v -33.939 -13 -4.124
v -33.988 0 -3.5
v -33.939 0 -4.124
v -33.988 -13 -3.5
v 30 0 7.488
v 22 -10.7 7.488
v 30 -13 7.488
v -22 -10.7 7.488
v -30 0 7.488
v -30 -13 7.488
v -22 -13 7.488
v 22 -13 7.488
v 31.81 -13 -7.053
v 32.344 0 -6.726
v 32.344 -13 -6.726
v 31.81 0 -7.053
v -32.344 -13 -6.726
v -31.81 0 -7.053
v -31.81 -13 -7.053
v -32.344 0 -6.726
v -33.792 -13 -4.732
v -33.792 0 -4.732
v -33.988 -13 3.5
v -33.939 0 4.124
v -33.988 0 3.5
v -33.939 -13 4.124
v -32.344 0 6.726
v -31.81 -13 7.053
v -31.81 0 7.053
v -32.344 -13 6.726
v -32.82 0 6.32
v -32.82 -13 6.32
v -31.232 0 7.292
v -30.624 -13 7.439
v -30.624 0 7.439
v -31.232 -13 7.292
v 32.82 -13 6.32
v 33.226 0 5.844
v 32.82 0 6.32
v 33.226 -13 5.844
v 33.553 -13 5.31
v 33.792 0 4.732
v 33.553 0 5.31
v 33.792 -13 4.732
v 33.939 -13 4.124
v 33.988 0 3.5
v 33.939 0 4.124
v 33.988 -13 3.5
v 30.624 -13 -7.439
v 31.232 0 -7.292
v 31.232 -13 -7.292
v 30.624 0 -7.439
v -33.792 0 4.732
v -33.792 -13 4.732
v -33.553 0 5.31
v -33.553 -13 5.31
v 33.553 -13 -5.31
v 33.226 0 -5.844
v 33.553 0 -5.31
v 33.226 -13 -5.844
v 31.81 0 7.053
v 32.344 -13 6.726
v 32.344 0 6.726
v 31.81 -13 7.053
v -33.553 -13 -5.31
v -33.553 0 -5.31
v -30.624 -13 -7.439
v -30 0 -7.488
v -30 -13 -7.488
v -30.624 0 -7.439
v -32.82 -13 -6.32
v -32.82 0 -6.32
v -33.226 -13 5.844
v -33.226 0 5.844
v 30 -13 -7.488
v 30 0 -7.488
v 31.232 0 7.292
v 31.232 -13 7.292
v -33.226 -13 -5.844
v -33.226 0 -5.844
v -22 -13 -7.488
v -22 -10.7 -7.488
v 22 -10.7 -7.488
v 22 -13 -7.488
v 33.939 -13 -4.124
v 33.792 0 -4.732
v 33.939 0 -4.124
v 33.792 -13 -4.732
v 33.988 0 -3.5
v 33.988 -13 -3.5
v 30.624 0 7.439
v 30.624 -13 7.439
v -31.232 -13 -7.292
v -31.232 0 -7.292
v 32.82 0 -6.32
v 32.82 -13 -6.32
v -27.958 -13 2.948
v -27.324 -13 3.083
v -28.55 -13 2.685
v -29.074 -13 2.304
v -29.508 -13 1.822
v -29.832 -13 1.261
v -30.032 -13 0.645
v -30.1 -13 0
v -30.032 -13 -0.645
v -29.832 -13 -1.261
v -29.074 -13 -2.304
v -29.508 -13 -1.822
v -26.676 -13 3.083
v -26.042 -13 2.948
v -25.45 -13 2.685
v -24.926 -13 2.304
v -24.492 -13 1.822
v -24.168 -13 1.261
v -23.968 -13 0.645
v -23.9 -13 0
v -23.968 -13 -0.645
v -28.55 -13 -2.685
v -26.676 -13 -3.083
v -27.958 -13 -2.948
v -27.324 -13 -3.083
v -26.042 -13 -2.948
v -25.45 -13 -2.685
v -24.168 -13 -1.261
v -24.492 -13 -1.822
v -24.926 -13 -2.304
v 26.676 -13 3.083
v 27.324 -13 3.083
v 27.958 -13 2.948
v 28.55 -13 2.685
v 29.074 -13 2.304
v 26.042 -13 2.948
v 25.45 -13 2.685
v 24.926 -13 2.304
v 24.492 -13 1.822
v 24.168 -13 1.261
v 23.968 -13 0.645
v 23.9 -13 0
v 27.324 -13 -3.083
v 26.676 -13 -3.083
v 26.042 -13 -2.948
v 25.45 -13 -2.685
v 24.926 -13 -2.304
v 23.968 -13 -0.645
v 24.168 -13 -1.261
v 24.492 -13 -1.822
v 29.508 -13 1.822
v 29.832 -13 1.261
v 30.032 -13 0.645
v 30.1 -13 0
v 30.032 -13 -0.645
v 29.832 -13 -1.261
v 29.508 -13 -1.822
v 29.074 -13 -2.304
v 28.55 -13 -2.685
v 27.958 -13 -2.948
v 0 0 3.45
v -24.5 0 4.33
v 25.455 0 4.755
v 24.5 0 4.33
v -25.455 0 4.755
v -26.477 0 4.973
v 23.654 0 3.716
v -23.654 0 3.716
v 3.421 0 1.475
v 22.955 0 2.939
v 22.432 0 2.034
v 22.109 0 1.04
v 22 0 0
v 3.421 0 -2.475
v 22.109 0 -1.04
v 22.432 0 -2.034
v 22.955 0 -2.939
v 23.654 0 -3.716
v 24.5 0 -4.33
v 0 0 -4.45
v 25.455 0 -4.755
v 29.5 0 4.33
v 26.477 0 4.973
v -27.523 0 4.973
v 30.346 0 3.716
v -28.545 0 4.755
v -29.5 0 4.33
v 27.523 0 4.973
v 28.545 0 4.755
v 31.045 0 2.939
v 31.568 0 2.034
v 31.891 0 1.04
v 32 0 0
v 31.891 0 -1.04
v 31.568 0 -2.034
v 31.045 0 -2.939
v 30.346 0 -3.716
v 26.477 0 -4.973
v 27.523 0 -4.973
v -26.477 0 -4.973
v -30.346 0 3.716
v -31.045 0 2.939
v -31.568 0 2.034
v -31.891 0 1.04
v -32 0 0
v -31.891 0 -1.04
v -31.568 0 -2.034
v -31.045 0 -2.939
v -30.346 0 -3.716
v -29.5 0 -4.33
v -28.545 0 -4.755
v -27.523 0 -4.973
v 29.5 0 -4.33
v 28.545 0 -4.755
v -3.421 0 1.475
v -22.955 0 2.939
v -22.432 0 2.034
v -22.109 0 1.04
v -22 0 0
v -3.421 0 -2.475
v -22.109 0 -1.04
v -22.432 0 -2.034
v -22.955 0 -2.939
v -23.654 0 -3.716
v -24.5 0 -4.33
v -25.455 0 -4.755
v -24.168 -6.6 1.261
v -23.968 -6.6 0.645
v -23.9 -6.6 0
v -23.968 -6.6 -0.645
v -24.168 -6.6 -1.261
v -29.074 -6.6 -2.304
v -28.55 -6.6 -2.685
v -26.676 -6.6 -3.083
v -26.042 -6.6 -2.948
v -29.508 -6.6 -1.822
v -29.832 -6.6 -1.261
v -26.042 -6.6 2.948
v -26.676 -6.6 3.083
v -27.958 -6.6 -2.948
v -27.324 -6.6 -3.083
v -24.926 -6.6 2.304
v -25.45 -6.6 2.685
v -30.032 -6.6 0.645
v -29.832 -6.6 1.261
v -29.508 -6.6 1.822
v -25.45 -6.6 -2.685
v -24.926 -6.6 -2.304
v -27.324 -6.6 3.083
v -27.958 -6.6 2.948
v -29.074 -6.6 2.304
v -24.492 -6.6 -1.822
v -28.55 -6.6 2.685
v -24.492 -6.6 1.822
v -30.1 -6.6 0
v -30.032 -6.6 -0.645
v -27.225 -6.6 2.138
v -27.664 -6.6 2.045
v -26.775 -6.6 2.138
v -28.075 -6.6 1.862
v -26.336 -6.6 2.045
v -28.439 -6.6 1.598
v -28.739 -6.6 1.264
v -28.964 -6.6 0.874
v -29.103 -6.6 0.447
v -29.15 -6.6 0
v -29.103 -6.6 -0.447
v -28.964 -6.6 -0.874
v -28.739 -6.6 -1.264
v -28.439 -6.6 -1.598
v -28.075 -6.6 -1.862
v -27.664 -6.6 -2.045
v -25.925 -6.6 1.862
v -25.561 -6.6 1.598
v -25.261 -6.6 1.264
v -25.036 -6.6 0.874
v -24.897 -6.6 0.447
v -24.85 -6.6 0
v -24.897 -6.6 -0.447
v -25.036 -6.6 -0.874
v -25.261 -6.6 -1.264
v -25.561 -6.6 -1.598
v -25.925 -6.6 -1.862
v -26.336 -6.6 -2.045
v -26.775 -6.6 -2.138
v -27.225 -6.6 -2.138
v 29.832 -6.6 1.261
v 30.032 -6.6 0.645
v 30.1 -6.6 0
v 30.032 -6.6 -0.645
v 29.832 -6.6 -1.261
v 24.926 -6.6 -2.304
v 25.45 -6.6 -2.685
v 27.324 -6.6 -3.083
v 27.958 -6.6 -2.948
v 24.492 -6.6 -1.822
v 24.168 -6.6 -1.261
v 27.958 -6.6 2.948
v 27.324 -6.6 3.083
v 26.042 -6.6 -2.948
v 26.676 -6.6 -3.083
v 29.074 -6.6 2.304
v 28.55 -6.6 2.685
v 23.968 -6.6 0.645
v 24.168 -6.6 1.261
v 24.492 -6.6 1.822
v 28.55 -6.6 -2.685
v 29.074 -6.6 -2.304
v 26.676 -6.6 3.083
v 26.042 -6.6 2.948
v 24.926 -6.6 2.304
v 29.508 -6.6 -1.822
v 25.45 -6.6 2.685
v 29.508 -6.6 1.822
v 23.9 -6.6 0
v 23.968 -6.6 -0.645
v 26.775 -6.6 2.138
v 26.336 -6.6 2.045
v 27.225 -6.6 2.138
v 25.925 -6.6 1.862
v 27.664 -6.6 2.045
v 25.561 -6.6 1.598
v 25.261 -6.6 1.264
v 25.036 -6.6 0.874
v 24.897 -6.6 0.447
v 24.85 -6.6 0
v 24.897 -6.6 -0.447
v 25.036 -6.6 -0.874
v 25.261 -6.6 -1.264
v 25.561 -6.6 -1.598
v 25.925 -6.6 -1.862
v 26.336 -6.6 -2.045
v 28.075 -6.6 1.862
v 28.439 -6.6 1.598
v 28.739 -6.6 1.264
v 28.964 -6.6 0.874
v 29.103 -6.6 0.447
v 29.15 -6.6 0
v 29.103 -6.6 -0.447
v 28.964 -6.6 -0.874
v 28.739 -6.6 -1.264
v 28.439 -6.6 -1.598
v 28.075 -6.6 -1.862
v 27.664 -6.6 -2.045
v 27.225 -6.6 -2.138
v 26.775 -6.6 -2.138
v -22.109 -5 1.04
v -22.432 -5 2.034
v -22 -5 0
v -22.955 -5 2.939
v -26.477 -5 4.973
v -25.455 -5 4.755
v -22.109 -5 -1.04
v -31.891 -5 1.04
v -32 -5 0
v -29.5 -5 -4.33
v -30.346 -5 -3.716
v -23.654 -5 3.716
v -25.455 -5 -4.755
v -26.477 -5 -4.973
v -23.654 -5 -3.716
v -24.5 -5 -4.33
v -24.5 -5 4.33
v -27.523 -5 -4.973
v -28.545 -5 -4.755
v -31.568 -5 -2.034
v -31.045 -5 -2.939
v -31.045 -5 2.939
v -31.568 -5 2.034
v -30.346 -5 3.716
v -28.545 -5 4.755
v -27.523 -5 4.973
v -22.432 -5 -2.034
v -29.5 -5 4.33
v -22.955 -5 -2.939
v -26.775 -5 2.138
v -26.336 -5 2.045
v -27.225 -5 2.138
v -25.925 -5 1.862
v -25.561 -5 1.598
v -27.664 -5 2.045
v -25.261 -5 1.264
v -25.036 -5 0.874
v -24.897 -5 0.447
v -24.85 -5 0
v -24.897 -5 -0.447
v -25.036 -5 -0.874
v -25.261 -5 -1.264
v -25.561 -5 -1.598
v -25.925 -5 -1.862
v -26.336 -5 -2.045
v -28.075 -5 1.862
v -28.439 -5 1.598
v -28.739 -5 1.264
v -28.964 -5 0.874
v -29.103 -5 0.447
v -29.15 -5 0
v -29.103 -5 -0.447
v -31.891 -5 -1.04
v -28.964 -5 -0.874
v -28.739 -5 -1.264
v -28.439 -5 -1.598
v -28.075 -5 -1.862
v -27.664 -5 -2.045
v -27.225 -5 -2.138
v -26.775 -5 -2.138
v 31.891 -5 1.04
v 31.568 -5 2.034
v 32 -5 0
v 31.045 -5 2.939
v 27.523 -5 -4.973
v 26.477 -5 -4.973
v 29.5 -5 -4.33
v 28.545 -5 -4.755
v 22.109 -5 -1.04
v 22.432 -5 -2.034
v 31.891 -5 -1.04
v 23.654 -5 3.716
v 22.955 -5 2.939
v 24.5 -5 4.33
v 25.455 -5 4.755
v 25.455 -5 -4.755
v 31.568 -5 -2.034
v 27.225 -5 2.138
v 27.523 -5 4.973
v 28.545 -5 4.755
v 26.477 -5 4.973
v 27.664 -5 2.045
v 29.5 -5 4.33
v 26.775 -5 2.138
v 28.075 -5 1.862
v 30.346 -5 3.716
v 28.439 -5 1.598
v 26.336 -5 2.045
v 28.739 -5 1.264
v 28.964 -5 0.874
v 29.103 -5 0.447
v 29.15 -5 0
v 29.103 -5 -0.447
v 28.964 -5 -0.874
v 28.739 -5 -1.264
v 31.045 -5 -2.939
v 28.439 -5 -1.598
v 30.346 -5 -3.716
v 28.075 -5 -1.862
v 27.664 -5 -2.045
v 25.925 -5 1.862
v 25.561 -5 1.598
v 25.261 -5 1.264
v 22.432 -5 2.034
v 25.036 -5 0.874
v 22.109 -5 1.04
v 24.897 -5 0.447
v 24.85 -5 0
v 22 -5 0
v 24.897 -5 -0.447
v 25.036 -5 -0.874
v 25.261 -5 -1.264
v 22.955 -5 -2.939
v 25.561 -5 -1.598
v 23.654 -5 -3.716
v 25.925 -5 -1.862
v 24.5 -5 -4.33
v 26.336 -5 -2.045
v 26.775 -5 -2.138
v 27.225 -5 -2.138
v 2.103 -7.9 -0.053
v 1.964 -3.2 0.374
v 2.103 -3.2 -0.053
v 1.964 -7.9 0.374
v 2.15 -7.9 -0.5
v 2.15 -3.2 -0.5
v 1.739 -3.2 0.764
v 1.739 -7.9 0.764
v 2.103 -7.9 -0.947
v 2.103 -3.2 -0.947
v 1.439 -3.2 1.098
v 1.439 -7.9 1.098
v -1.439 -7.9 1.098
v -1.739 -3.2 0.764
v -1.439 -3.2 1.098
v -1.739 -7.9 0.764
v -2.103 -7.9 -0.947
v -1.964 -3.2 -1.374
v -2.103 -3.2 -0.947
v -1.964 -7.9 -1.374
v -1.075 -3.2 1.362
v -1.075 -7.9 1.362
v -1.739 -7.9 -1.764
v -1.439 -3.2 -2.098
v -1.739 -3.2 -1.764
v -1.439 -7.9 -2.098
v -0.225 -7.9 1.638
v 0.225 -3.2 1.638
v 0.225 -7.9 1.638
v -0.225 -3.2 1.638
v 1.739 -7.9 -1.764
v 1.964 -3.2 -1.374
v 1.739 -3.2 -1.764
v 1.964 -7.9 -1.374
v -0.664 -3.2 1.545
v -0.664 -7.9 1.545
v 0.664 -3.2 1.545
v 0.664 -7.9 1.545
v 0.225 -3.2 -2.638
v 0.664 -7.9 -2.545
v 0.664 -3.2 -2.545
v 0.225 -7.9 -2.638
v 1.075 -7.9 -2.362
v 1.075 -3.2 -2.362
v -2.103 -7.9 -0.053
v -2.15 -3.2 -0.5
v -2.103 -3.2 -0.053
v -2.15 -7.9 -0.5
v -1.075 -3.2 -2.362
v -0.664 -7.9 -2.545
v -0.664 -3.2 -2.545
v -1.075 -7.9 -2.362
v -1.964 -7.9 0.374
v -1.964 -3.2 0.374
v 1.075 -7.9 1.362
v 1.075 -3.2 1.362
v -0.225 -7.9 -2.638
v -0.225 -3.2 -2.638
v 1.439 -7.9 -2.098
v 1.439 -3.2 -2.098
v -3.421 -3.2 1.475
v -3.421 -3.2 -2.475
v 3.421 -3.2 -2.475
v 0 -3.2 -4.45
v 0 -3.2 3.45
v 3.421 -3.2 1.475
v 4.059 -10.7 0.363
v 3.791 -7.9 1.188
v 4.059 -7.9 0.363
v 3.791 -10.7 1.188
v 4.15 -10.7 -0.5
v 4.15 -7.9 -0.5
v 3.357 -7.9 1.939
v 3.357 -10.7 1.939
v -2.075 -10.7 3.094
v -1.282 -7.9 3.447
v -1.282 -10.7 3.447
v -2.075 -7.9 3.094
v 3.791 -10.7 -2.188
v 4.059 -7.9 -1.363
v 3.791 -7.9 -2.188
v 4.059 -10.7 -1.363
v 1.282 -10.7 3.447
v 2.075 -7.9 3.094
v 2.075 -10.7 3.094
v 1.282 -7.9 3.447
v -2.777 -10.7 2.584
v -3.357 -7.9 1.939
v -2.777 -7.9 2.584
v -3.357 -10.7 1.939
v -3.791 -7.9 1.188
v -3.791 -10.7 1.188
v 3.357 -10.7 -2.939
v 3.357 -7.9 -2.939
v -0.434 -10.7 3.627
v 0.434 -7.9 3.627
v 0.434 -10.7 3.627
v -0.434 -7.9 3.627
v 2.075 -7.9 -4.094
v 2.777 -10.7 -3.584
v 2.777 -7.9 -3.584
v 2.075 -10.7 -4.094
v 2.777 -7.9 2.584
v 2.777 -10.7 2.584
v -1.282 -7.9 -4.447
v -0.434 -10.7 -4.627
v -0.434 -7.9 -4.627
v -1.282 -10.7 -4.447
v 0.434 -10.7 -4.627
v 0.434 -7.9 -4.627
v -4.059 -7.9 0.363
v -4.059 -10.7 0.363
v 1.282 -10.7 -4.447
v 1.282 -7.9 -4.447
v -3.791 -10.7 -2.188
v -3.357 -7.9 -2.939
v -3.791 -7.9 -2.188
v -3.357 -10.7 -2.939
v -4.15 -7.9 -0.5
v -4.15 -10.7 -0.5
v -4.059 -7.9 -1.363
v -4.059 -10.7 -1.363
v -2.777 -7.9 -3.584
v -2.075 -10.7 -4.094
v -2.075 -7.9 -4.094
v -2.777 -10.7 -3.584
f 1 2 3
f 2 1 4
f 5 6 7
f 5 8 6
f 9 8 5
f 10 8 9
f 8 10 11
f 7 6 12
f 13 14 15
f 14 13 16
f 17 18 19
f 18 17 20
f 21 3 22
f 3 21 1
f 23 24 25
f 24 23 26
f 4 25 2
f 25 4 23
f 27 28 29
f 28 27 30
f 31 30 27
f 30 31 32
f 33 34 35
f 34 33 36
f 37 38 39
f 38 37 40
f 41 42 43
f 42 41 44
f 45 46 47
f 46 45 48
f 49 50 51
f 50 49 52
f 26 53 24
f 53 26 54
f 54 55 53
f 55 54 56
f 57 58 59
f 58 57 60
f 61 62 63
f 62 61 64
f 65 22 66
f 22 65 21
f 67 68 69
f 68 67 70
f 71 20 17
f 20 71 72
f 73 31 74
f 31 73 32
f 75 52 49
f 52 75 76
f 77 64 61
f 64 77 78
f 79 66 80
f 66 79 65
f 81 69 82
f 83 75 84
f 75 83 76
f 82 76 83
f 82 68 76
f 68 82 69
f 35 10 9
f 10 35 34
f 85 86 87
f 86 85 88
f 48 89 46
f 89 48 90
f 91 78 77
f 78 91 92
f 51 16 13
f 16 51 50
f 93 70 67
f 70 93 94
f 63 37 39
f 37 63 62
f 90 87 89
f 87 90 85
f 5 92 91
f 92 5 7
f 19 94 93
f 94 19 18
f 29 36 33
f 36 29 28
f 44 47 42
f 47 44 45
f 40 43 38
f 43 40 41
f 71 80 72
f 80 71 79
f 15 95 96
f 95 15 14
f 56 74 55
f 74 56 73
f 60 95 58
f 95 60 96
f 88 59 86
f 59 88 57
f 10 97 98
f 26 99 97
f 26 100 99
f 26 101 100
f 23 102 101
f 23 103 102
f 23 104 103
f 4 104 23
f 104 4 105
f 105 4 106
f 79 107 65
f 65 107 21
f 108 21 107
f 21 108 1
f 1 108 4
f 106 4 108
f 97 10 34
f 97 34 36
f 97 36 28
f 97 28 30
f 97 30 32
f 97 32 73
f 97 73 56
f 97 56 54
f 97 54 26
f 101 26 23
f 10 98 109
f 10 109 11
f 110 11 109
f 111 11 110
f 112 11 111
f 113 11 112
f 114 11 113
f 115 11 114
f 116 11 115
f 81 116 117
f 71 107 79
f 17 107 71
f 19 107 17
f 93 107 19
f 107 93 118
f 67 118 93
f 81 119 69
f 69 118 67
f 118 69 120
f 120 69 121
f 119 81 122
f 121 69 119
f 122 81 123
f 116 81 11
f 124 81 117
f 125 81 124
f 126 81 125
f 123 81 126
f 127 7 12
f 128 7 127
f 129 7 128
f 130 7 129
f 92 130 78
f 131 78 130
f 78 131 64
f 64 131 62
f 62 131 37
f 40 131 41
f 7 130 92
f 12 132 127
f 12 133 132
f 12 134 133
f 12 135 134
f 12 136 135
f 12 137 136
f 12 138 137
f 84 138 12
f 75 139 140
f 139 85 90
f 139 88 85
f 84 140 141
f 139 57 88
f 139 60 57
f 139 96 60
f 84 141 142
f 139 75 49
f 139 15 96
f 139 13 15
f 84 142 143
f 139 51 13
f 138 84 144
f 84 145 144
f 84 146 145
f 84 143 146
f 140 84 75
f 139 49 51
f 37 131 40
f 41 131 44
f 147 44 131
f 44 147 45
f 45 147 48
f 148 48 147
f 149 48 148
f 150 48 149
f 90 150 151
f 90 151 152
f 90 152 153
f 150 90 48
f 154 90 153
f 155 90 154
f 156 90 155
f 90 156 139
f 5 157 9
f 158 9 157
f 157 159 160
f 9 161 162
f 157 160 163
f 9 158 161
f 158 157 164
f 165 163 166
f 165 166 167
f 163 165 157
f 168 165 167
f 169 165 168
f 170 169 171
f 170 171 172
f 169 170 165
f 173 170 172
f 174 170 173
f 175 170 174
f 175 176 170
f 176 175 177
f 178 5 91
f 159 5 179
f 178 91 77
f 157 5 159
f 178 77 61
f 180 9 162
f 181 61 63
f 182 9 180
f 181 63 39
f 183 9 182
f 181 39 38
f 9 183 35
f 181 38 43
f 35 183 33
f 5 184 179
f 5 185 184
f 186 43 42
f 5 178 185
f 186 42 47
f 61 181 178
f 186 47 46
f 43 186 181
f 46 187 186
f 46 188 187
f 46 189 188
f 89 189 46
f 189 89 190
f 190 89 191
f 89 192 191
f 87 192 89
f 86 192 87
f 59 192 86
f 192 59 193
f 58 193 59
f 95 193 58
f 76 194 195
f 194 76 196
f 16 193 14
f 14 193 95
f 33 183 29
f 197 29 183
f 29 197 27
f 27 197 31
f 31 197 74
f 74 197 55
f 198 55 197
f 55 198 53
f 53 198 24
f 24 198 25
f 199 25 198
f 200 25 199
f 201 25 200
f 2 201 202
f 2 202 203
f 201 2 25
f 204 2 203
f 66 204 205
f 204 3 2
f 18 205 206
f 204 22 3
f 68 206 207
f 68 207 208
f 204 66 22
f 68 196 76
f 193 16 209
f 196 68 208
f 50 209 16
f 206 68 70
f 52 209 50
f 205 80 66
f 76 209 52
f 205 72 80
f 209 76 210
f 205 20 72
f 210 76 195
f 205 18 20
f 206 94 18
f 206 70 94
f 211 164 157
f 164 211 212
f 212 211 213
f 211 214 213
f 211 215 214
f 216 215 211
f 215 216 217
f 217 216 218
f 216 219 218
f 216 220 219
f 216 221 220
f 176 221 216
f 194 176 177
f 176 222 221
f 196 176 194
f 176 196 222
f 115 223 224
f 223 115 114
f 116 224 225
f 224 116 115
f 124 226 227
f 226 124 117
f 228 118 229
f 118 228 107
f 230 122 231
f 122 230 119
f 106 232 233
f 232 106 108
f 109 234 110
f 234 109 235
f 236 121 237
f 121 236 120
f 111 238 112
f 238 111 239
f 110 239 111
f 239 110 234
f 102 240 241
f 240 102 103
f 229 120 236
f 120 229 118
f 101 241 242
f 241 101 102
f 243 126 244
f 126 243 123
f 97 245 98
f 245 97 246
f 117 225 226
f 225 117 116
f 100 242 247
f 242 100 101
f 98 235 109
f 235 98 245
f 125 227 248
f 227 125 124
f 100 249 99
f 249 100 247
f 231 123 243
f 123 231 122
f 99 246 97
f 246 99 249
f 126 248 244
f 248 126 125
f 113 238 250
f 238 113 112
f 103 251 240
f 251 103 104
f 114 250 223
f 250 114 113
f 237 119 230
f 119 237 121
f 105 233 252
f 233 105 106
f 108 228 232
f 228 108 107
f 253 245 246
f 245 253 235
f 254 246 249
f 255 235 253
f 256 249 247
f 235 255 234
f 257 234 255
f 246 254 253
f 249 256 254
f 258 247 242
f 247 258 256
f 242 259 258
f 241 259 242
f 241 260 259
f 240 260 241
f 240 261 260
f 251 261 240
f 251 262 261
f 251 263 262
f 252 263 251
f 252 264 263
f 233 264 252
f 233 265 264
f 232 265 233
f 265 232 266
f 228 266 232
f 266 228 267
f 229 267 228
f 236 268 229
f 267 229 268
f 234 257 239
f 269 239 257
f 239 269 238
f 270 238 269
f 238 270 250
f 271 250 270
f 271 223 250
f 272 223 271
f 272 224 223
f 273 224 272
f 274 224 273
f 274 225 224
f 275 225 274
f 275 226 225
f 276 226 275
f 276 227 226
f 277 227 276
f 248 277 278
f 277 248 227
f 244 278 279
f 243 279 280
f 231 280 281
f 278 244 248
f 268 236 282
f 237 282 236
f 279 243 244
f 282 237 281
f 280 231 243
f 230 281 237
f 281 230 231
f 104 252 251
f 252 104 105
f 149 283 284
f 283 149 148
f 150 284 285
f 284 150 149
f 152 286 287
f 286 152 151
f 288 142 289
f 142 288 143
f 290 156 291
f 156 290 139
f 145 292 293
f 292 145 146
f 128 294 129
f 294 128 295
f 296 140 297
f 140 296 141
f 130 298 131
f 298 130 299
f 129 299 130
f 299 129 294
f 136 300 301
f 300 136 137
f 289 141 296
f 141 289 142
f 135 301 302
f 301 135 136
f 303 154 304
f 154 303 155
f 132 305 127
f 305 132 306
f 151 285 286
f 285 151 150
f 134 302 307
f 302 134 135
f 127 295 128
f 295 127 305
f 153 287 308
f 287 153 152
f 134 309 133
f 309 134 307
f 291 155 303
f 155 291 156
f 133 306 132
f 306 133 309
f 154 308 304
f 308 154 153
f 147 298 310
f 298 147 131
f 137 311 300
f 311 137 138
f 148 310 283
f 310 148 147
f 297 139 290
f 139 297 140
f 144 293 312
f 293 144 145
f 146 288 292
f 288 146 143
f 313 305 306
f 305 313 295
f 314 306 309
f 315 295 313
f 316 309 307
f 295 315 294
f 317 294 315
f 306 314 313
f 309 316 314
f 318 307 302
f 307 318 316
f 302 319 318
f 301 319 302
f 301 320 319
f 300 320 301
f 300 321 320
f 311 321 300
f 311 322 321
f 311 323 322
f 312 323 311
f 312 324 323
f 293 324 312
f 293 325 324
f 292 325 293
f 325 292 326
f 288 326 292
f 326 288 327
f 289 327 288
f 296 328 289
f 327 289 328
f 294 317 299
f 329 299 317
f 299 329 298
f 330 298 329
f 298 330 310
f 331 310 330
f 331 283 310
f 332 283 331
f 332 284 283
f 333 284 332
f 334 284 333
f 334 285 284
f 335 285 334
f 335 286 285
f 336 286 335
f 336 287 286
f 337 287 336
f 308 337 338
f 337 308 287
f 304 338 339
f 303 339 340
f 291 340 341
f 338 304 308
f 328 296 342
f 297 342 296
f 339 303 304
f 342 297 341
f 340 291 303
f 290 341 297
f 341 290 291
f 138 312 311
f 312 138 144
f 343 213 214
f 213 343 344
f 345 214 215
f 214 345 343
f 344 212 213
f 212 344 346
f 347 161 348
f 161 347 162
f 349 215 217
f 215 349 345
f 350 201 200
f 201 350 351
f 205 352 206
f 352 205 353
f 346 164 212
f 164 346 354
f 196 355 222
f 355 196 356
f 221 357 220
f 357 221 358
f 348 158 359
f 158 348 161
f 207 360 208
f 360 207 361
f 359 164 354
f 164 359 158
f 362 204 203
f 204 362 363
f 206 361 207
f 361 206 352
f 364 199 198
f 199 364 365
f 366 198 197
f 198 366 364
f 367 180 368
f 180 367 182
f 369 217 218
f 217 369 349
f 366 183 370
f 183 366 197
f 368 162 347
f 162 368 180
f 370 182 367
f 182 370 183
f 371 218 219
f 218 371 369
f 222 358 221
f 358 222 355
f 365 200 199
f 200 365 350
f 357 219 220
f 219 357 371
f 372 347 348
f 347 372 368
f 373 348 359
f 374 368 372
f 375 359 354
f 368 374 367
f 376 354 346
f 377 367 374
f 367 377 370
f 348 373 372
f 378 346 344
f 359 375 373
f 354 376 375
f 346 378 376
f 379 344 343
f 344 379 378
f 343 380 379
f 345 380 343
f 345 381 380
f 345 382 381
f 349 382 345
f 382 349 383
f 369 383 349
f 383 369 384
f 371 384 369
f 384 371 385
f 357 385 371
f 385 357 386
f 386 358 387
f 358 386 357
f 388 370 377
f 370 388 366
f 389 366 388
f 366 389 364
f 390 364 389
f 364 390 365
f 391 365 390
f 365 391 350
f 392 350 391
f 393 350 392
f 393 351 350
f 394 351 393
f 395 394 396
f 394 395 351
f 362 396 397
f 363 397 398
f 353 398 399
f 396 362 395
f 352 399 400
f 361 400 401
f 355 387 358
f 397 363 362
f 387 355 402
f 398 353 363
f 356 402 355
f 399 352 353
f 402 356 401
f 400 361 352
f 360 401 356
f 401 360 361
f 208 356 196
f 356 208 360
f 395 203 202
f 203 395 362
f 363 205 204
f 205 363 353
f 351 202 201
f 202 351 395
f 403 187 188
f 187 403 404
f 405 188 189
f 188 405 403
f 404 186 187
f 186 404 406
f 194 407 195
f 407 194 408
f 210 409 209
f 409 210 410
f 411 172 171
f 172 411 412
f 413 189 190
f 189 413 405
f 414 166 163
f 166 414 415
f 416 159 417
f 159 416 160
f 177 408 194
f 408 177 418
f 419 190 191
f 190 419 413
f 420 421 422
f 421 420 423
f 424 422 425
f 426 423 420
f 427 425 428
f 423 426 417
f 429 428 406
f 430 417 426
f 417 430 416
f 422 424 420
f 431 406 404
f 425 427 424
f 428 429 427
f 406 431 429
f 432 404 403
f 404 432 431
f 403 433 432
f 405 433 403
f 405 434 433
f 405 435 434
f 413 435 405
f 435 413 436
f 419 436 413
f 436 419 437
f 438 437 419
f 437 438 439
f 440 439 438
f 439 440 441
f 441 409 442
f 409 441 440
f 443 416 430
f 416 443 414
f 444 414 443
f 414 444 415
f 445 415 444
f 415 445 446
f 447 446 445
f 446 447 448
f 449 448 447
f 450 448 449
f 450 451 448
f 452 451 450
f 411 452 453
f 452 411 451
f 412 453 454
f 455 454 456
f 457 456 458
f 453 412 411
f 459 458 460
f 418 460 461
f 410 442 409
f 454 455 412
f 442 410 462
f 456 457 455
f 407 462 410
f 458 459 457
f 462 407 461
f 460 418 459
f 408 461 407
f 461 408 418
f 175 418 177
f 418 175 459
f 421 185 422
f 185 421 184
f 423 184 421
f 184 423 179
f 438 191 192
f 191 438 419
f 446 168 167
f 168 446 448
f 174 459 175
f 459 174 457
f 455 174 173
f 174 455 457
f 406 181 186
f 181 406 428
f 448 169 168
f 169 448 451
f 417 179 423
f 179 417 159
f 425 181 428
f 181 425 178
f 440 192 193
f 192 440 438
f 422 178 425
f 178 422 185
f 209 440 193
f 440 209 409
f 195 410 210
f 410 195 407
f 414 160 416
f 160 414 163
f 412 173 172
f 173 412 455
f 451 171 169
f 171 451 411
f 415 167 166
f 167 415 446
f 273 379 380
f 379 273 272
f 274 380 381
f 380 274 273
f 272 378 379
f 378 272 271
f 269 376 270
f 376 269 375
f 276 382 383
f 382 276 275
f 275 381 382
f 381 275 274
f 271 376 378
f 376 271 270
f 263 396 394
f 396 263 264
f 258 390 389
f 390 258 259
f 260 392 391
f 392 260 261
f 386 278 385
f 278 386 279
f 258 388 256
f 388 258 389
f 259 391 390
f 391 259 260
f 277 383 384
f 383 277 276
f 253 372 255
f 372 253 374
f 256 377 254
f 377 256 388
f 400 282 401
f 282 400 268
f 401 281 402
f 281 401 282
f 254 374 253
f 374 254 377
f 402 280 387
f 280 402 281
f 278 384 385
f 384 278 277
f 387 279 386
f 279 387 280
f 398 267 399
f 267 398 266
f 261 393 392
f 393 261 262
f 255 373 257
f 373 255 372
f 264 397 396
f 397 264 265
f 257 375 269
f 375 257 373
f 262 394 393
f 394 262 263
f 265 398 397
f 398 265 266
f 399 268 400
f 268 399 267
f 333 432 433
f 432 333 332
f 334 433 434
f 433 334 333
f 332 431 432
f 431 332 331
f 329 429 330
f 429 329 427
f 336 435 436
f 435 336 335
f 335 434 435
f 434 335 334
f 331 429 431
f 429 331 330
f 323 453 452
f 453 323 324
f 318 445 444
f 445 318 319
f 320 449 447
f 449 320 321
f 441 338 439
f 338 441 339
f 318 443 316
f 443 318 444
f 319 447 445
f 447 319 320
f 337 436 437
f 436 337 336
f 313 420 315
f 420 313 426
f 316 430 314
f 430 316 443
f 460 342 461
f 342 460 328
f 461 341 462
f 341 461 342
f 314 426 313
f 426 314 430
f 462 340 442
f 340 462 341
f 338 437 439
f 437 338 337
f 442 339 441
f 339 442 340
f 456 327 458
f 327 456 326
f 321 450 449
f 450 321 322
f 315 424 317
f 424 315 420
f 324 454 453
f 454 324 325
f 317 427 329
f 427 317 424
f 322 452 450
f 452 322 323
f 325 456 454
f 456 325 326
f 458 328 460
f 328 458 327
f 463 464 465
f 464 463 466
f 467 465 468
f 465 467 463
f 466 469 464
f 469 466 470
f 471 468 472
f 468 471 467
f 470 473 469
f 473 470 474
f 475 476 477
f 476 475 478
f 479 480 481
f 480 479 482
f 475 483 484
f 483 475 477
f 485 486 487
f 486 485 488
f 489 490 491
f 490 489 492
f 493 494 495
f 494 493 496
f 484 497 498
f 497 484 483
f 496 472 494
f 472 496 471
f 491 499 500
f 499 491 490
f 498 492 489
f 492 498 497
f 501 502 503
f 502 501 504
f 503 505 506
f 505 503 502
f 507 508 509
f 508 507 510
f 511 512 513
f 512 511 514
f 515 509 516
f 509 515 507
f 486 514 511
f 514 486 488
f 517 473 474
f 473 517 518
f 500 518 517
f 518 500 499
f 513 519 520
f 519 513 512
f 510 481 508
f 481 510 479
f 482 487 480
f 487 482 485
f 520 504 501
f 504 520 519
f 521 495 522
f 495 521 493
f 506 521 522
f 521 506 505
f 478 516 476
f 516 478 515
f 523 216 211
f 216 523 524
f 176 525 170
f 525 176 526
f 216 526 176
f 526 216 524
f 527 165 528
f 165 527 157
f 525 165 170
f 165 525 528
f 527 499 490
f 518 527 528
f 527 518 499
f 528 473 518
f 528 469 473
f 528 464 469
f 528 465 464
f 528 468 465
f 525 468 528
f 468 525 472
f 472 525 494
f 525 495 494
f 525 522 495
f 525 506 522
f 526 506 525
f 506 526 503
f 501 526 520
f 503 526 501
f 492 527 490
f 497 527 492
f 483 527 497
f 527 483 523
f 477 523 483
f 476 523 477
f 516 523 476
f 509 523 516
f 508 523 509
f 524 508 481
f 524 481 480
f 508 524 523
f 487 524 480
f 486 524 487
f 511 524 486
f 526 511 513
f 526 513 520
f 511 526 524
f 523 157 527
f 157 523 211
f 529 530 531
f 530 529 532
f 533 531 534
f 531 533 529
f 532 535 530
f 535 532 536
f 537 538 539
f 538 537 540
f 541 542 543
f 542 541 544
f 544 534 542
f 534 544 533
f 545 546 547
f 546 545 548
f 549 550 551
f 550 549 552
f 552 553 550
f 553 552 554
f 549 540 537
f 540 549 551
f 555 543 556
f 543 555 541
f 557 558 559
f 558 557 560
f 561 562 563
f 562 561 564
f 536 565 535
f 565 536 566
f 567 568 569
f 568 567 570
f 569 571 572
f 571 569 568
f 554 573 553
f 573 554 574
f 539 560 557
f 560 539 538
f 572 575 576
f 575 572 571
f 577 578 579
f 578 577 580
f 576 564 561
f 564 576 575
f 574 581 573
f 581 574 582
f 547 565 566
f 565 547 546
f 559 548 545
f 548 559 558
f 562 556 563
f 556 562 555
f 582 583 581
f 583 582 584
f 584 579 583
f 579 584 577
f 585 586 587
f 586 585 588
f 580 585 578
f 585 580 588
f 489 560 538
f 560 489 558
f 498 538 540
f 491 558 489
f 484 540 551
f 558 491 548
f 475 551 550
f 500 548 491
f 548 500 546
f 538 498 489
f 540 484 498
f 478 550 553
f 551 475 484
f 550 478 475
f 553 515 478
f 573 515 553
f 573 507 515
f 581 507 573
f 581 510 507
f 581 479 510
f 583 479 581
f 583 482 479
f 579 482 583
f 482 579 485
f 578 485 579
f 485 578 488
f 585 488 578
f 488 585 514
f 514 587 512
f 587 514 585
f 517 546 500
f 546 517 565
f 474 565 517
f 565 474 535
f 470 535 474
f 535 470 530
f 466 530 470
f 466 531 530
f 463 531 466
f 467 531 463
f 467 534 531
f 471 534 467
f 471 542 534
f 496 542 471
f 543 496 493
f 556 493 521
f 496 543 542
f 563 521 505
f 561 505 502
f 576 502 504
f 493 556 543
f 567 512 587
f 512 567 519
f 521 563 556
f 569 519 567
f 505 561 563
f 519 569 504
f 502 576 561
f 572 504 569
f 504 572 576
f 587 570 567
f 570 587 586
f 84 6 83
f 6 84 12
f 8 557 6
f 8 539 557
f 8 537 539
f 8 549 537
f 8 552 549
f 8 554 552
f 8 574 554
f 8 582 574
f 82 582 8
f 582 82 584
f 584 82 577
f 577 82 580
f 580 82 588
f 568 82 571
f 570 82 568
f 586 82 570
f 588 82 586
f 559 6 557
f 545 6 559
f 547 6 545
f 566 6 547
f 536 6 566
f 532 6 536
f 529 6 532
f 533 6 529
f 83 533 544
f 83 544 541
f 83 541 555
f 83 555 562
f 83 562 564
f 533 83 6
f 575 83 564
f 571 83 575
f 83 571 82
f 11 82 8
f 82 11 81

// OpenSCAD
// file: ../Dollo/NEW_long_ties/globals.scad
/*
Most things in this file is represented as one millimeter, so keep that in mind while changing things.
Some of the setting are not mm but at variables that you can set, such as 2*x=2x and you are setting what x is.
I will try to specify when things are variables and not exact measurements.
*/

// printer slop
slop = 0.15;

obj_leg = 30;
leg_length = 5.5;
small_number = 0.001;
metal_core_rode_global = 5;


///////////////// number of holes /////////////////////
z_hole_number = 8;
other_holes = 8;

///////////////// Pins /////////////////////

//pins that poke out
ball_size = 10;
pin_height = 20;
pin_diameter = 6;


//holes
hole_ball_size = ball_size;
hole_pin_height = pin_height;
hole_pin_diameter = pin_diameter;

///////////////// Z THINGS /////////////////////

berring_slot_width = 7.5;
berring_slot_depth = 6.5;
metal_core_rode = 5;

///////////////// X THINGS /////////////////////

//male dove tails
male_dove_max_width=8;
male_dove_min_width=5;
male_dove_depth=5;
male_dove_height=obj_leg/2;

function scaled_male_dove_max_width() = male_dove_max_width - slop;
function scaled_male_dove_min_width() = male_dove_min_width - slop;
function scaled_male_dove_depth() = male_dove_depth - slop;

//female dove tails, this is found on the y mounts
girl_max_width=11;
girl_min_width=5;
girl_depth=5;
girl_height=obj_leg;


///////////////// Y THINGS /////////////////////
/*
The Y is so normal that all of those global variables at the top should change all of the setting in it, this section is set her incase there are variables set in the future development of this project.
*/

// stepper
motor_side_length = 43.2;
motor_bolt_hole_distance = 31;
motor_center_hole = 23;
motor_shaft_dia = 5;
motor_shaft_hole_dia = 5+2*slop;

// bolts etc.
bolt_hole_dia = 3+2*slop;
bolt_head_hole_dia = 5.8;

m4_bolt_hole_dia = 4+2*slop;
m4_bolt_head_hole_dia = 6.8+2*slop;


m3_nut_side = 5.65;
m3_nut_height = 2.3;
m4_nut_side = 6.85;
m4_nut_height = 3.1;

// threaded rod
lifter_rod_diam = 9.86;
hole_threaded_rod = lifter_rod_diam+2*slop;

// for the extensions
metal_rod_size = 9;
// main file
include <../Dollo/NEW_long_ties/include.scad>;

width = 68;
depth = 15;
height = 13;

m4_hole = 4.3;

//debug_tuniq_tower_mount();
block();


module block() {
    rotate([90, 0, 0])
    difference() {
        translate([-width/2, -depth/2, 0])
        rounded_cube_side(
            width, depth, height, 8, $fn=40
        );

        translate([-54/2, 0, height - 6.4])
        cylinder(
            d=6.2, h=height, $fn=30
        );

        translate([54/2, 0, height - 6.4])
        cylinder(
            d=6.2, h=height, $fn=30
        );
        
        translate([-54/2, 0, 0])
        cylinder(
            d=10, h=(height - 8)*2,
            center=true, $fn=30
        );

        translate([54/2, 0, 0]) 
        cylinder(
            d=10, h=(height - 8)*2,
            center=true, $fn=30
        );
        
        translate([-54/2, 0, 0])
        cylinder(
            d=m4_hole, h=(height - 6)*2,
            center=true, $fn=30
        );

        translate([54/2, 0, 0])
        cylinder(
            d=m4_hole, h=(height - 6)*2,
            center=true, $fn=30
        );

        translate([0, -0.5, 0])
        cylinder(
            d=m4_hole, h=height*3,
            center=true, $fn=30
        );
        
        translate([0, -0.5, -0.2])
        rotate([0, 0, 90])
        M4_nut(3.4, false);
        
        translate([0, -0.5, height - 2.3 - 2.8])
        cylinder(d=8.3, h=3, $fn=30);
        
        translate([0, 0, height])
        cube([44, depth, 2.3*2], center=true);
    }
}

module debug_tuniq_tower_mount() {
    translate([0, 90/2, 0])
    rotate([90, 0, 0])
    block();

    translate([0, -90/2, 0])
    rotate([90, 0, 180])
    block();
}
